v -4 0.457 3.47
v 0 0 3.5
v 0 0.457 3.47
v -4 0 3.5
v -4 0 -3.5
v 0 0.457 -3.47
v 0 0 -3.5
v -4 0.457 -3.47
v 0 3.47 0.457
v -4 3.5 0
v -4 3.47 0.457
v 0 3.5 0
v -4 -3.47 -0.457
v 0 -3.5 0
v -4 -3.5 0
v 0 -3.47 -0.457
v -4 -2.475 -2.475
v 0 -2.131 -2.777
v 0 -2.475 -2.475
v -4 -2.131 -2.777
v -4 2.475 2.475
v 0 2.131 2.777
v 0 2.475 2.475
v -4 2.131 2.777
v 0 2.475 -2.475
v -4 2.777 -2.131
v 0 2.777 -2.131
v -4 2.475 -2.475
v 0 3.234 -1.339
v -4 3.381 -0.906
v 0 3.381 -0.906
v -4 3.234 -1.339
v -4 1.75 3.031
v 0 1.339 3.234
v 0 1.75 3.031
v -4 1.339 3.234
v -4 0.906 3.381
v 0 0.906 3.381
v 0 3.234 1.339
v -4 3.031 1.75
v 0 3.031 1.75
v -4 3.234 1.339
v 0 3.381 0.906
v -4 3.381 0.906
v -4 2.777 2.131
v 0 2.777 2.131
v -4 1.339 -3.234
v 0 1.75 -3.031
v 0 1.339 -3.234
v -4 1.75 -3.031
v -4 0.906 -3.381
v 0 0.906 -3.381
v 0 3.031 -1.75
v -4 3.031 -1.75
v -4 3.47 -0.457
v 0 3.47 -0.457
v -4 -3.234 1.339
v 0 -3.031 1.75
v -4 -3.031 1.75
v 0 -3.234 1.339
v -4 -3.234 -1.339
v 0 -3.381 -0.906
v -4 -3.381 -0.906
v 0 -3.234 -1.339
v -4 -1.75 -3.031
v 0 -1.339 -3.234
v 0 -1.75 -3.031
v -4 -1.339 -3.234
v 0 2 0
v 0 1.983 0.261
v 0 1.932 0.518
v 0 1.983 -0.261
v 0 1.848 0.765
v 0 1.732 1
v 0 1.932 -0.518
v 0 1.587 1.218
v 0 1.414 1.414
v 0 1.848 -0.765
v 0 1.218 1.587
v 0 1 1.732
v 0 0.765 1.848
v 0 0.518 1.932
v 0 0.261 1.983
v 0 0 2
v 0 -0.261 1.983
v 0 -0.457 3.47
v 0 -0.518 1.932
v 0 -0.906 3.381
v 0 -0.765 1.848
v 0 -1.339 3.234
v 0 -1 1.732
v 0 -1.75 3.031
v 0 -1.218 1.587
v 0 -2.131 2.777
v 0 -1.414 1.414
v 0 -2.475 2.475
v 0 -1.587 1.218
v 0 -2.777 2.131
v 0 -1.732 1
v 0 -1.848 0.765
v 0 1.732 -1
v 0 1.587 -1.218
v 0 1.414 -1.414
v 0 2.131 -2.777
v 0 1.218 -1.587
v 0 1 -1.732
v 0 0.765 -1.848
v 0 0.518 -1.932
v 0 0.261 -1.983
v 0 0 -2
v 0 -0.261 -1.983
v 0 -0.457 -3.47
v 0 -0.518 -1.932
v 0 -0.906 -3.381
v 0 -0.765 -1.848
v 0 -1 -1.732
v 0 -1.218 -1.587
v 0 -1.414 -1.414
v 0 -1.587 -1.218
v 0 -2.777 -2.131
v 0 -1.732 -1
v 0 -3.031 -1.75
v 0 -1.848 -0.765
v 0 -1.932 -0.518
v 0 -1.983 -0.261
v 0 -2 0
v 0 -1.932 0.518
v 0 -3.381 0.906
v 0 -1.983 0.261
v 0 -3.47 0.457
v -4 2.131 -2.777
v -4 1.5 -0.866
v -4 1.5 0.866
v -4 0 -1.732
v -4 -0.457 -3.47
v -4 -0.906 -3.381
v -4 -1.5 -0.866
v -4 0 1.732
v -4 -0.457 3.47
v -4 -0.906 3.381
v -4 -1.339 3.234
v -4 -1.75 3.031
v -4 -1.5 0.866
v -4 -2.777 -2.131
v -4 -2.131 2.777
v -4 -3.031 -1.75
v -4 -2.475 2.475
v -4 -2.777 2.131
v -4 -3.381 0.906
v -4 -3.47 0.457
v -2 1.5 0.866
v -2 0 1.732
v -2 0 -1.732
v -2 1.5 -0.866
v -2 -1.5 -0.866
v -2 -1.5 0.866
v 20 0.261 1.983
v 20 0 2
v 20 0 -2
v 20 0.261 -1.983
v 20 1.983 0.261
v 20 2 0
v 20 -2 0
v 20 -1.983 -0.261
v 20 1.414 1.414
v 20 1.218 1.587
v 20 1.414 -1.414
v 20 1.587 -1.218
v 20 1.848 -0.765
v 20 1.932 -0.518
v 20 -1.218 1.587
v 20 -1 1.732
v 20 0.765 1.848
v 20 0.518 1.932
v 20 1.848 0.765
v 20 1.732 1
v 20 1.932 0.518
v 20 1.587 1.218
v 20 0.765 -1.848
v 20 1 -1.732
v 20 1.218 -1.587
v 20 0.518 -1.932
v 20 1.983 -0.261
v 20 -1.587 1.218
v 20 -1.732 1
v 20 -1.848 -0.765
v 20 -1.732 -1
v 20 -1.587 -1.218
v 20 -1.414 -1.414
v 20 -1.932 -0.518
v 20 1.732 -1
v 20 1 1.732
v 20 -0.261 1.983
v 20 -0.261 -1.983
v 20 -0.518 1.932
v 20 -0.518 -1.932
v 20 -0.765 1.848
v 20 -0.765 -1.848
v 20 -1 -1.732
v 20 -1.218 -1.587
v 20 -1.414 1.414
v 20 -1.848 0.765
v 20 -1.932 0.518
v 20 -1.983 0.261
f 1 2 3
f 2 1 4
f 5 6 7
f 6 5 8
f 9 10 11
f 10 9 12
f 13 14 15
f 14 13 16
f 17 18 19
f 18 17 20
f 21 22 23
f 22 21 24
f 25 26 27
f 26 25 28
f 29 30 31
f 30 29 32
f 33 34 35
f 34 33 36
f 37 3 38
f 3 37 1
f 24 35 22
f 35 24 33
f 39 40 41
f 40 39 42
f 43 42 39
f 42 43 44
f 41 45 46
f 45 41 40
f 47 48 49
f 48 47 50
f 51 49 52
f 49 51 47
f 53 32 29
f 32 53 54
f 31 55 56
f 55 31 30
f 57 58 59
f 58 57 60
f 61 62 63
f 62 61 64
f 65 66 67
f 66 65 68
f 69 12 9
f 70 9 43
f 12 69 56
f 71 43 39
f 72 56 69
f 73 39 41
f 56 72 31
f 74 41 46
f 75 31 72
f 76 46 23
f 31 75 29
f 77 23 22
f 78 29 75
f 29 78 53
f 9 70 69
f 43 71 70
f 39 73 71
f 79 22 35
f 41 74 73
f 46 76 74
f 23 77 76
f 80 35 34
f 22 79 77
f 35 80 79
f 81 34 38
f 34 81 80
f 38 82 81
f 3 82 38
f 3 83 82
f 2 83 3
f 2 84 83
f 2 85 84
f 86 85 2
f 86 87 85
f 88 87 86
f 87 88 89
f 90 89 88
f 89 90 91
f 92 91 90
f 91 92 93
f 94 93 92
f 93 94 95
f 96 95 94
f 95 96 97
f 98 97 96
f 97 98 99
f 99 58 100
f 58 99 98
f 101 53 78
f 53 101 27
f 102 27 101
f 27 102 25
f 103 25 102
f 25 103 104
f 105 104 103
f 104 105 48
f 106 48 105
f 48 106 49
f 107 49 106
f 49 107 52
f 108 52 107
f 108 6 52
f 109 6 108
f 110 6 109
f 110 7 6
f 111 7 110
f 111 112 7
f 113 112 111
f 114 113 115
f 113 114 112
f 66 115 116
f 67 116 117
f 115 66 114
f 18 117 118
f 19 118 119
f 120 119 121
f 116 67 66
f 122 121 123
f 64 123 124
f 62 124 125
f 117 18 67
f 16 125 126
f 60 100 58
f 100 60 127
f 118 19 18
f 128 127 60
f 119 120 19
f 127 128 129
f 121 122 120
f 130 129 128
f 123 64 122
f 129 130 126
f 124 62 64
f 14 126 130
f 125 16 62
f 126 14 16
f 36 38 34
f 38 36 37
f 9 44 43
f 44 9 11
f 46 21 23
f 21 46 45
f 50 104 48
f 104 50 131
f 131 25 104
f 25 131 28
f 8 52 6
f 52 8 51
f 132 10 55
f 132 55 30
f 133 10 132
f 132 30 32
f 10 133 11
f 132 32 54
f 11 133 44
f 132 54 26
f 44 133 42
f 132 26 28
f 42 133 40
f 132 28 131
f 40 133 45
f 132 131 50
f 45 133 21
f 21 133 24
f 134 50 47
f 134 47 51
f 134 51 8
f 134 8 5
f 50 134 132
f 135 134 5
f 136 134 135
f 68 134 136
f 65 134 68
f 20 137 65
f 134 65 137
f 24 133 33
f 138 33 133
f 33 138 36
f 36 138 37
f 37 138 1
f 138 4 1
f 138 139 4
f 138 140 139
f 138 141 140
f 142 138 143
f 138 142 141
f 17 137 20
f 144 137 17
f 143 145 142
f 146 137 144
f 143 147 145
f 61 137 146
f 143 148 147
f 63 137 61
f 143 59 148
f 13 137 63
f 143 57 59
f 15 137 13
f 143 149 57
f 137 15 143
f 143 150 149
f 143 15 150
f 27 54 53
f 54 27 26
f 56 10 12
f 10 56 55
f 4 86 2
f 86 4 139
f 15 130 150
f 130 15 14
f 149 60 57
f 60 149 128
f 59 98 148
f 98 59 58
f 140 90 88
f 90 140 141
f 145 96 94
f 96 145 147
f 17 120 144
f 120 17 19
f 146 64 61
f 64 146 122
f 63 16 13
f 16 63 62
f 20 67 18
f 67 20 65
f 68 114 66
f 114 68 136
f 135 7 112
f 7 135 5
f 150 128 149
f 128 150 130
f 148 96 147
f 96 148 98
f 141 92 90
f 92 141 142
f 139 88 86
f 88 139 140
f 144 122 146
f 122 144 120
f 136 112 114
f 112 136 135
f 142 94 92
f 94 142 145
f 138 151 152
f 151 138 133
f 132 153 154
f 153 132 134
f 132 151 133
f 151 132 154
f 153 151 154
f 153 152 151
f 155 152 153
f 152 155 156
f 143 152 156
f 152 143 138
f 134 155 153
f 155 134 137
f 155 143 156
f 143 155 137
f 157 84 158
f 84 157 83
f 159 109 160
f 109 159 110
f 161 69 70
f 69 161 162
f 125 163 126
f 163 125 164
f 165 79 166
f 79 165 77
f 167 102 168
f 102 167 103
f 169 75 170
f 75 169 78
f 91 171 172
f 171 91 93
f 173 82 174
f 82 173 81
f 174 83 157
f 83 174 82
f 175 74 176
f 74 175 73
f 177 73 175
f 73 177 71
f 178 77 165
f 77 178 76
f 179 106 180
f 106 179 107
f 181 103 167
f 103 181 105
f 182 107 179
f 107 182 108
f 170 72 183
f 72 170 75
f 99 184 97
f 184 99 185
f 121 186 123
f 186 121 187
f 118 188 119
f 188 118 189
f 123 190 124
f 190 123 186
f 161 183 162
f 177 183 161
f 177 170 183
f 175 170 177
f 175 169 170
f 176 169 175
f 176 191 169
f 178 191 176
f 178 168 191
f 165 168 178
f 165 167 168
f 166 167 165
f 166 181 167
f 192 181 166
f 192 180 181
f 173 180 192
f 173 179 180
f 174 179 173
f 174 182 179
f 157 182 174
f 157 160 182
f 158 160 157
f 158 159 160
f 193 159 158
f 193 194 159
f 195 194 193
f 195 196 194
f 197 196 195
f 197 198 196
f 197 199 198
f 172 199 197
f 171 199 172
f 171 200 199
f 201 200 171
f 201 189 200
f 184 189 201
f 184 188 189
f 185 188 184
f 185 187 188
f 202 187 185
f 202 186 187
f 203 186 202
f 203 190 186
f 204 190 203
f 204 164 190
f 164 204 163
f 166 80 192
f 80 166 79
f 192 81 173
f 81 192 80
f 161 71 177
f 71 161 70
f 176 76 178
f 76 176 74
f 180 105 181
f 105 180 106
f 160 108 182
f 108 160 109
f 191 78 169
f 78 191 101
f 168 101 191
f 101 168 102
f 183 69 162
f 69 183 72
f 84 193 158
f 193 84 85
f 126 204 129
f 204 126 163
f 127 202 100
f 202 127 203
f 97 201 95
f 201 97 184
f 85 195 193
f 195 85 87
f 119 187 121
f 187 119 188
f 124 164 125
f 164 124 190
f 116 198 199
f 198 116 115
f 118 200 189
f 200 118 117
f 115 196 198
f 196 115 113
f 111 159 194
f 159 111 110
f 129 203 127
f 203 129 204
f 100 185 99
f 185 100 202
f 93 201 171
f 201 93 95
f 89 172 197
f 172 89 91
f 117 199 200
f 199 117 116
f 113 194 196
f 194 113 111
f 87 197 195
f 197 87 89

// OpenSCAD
// file: ../../lib/nutsnbolts/data-access.scad
// Norm Nuts and Bolts - a OpenSCAD library
// Copyright (C) 2012  Johannes Kneer

// This program is free software: you can redistribute it and/or modify
// it under the terms of the GNU General Public License as published by
// the Free Software Foundation, either version 3 of the License, or
// (at your option) any later version.

// This program is distributed in the hope that it will be useful,
// but WITHOUT ANY WARRANTY; without even the implied warranty of
// MERCHANTABILITY or FITNESS FOR A PARTICULAR PURPOSE.  See the
// GNU General Public License for more details.

// You should have received a copy of the GNU General Public License
// along with this program.  If not, see <http://www.gnu.org/licenses/>.


// DATABASE ACCESS FUNCTIONS AND CONSTANTS



// == CONSTANTS ==

// screw table access keys
_NB_S_DESC            = 0;
_NB_S_FAMKEY			    = 1;
_NB_S_LENGTH          = 2;
_NB_S_NOTHREAD_LENGTH = 3;

_NB_F_DESC			      = 0;
_NB_F_OUTER_DIA       = 1;
_NB_F_INNER_DIA       = 2;
_NB_F_LEAD            = 3;
_NB_F_KEY             = 4;
_NB_F_KEY_DEPTH       = 5;
_NB_F_HEAD_HEIGHT     = 6;
_NB_F_HEAD_DIA        = 7;
_NB_F_NUT_KEY         = 8;
_NB_F_NUT_HEIGHT      = 9;
_NB_F_PITCH_FINE      = 10;
_NB_F_PITCH_MEDIUM    = 11;
_NB_F_PITCH_COARSE    = 12;


// == FUNCTIONS ==

// _get_screw("descriptor")   with descriptor = M8x25
//   find the line for a general object in the data matrix

function _get_screw(n) = data_screw[search([n], data_screw)[0]];
function _get_screw_fam(n) = data_screw_fam[search([_get_screw(n)[_NB_S_FAMKEY]], data_screw_fam)[0]];

function _get_fam(n) = data_screw_fam[search([n], data_screw_fam)[0]];


// _get_XXXXX("descriptor") functions
// find a single property in the database

function _get_desc(n)        = _get_screw(n)[_NB_S_DESC];
function _get_famkey(n)         = _get_screw(n)[_NB_S_FAMKEY];
function _get_length(n)      = _get_screw(n)[_NB_S_LENGTH];
function _get_nt_length(n)   = _get_screw(n)[_NB_S_NOTHREAD_LENGTH];

function _get_outer_dia(n)   = _get_screw_fam(n)[_NB_F_OUTER_DIA];
function _get_inner_dia(n)   = _get_screw_fam(n)[_NB_F_INNER_DIA];
function _get_lead(n)        = _get_screw_fam(n)[_NB_F_LEAD];
function _get_head_height(n) = _get_screw_fam(n)[_NB_F_HEAD_HEIGHT];
function _get_head_dia(n)    = _get_screw_fam(n)[_NB_F_HEAD_DIA];
function _get_nut_key(n)     = _get_screw_fam(n)[_NB_F_NUT_KEY];
function _get_nut_height(n)  = _get_screw_fam(n)[_NB_F_NUT_HEIGHT];
function _get_fine_pitch(n)  = _get_screw_fam(n)[_NB_F_PITCH_FINE];
function _get_medium_pitch(n)  = _get_screw_fam(n)[_NB_F_PITCH_MEDIUM];
function _get_coarse_pitch(n)  = _get_screw_fam(n)[_NB_F_PITCH_COARSE];
// main file
/**********************************************************************************************************************
 **
 ** parts/vitamins/screw_M4x20.scad
 **
 ** This file renders a screw of the dimensions specified by the file name.
 **
 **********************************************************************************************************************/

include <../../lib/nutsnbolts/cyl_head_bolt.scad>;

$fn = 48;
rotate([0, -90, 0])
	screw("M4x20"); 
